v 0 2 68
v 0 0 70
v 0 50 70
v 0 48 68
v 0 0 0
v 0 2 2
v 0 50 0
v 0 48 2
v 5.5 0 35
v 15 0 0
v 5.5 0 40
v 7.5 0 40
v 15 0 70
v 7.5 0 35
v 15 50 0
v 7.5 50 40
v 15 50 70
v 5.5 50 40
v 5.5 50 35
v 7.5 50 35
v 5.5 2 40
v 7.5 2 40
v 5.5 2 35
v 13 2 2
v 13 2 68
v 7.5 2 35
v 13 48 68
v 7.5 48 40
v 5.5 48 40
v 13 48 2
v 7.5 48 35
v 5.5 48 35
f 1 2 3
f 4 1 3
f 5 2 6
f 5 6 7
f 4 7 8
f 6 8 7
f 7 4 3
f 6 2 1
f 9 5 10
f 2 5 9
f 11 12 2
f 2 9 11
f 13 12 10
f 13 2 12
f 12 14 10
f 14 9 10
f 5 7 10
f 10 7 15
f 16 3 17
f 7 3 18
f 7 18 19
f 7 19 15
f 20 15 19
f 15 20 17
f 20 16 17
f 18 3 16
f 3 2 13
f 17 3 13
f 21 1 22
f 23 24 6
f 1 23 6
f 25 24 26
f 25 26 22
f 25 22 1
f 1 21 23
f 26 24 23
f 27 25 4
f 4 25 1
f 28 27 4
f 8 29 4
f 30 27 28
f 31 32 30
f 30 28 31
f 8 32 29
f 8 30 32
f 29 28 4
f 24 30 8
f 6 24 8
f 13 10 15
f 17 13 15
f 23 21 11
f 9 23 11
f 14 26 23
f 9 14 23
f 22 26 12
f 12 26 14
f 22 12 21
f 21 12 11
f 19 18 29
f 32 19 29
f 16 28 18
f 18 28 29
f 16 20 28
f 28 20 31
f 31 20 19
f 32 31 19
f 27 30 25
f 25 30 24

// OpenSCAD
// Parameters

// Main box
w = 50;
l = 70;
h = 15;
thickness = 2; 

// Sensor
sensor_w = 25.4; 
sensor_l = 25.4;
distance_from_top = 10;

// Clips
attach_clip_w = 5;
attach_clip_l = 2;
distance_from_edge = h/2 - attach_clip_l;

// Front box
difference(){

	difference(){
		cube([h,w,l]);
		translate([-thickness,thickness,thickness]) {
  			cube([h,w-2*thickness,l-2*thickness]);
		}
	}

	// Clips on the sides
	translate([distance_from_edge,-5,l/2]) {
		cube([attach_clip_l,60,attach_clip_w]);
	} 
	
}
